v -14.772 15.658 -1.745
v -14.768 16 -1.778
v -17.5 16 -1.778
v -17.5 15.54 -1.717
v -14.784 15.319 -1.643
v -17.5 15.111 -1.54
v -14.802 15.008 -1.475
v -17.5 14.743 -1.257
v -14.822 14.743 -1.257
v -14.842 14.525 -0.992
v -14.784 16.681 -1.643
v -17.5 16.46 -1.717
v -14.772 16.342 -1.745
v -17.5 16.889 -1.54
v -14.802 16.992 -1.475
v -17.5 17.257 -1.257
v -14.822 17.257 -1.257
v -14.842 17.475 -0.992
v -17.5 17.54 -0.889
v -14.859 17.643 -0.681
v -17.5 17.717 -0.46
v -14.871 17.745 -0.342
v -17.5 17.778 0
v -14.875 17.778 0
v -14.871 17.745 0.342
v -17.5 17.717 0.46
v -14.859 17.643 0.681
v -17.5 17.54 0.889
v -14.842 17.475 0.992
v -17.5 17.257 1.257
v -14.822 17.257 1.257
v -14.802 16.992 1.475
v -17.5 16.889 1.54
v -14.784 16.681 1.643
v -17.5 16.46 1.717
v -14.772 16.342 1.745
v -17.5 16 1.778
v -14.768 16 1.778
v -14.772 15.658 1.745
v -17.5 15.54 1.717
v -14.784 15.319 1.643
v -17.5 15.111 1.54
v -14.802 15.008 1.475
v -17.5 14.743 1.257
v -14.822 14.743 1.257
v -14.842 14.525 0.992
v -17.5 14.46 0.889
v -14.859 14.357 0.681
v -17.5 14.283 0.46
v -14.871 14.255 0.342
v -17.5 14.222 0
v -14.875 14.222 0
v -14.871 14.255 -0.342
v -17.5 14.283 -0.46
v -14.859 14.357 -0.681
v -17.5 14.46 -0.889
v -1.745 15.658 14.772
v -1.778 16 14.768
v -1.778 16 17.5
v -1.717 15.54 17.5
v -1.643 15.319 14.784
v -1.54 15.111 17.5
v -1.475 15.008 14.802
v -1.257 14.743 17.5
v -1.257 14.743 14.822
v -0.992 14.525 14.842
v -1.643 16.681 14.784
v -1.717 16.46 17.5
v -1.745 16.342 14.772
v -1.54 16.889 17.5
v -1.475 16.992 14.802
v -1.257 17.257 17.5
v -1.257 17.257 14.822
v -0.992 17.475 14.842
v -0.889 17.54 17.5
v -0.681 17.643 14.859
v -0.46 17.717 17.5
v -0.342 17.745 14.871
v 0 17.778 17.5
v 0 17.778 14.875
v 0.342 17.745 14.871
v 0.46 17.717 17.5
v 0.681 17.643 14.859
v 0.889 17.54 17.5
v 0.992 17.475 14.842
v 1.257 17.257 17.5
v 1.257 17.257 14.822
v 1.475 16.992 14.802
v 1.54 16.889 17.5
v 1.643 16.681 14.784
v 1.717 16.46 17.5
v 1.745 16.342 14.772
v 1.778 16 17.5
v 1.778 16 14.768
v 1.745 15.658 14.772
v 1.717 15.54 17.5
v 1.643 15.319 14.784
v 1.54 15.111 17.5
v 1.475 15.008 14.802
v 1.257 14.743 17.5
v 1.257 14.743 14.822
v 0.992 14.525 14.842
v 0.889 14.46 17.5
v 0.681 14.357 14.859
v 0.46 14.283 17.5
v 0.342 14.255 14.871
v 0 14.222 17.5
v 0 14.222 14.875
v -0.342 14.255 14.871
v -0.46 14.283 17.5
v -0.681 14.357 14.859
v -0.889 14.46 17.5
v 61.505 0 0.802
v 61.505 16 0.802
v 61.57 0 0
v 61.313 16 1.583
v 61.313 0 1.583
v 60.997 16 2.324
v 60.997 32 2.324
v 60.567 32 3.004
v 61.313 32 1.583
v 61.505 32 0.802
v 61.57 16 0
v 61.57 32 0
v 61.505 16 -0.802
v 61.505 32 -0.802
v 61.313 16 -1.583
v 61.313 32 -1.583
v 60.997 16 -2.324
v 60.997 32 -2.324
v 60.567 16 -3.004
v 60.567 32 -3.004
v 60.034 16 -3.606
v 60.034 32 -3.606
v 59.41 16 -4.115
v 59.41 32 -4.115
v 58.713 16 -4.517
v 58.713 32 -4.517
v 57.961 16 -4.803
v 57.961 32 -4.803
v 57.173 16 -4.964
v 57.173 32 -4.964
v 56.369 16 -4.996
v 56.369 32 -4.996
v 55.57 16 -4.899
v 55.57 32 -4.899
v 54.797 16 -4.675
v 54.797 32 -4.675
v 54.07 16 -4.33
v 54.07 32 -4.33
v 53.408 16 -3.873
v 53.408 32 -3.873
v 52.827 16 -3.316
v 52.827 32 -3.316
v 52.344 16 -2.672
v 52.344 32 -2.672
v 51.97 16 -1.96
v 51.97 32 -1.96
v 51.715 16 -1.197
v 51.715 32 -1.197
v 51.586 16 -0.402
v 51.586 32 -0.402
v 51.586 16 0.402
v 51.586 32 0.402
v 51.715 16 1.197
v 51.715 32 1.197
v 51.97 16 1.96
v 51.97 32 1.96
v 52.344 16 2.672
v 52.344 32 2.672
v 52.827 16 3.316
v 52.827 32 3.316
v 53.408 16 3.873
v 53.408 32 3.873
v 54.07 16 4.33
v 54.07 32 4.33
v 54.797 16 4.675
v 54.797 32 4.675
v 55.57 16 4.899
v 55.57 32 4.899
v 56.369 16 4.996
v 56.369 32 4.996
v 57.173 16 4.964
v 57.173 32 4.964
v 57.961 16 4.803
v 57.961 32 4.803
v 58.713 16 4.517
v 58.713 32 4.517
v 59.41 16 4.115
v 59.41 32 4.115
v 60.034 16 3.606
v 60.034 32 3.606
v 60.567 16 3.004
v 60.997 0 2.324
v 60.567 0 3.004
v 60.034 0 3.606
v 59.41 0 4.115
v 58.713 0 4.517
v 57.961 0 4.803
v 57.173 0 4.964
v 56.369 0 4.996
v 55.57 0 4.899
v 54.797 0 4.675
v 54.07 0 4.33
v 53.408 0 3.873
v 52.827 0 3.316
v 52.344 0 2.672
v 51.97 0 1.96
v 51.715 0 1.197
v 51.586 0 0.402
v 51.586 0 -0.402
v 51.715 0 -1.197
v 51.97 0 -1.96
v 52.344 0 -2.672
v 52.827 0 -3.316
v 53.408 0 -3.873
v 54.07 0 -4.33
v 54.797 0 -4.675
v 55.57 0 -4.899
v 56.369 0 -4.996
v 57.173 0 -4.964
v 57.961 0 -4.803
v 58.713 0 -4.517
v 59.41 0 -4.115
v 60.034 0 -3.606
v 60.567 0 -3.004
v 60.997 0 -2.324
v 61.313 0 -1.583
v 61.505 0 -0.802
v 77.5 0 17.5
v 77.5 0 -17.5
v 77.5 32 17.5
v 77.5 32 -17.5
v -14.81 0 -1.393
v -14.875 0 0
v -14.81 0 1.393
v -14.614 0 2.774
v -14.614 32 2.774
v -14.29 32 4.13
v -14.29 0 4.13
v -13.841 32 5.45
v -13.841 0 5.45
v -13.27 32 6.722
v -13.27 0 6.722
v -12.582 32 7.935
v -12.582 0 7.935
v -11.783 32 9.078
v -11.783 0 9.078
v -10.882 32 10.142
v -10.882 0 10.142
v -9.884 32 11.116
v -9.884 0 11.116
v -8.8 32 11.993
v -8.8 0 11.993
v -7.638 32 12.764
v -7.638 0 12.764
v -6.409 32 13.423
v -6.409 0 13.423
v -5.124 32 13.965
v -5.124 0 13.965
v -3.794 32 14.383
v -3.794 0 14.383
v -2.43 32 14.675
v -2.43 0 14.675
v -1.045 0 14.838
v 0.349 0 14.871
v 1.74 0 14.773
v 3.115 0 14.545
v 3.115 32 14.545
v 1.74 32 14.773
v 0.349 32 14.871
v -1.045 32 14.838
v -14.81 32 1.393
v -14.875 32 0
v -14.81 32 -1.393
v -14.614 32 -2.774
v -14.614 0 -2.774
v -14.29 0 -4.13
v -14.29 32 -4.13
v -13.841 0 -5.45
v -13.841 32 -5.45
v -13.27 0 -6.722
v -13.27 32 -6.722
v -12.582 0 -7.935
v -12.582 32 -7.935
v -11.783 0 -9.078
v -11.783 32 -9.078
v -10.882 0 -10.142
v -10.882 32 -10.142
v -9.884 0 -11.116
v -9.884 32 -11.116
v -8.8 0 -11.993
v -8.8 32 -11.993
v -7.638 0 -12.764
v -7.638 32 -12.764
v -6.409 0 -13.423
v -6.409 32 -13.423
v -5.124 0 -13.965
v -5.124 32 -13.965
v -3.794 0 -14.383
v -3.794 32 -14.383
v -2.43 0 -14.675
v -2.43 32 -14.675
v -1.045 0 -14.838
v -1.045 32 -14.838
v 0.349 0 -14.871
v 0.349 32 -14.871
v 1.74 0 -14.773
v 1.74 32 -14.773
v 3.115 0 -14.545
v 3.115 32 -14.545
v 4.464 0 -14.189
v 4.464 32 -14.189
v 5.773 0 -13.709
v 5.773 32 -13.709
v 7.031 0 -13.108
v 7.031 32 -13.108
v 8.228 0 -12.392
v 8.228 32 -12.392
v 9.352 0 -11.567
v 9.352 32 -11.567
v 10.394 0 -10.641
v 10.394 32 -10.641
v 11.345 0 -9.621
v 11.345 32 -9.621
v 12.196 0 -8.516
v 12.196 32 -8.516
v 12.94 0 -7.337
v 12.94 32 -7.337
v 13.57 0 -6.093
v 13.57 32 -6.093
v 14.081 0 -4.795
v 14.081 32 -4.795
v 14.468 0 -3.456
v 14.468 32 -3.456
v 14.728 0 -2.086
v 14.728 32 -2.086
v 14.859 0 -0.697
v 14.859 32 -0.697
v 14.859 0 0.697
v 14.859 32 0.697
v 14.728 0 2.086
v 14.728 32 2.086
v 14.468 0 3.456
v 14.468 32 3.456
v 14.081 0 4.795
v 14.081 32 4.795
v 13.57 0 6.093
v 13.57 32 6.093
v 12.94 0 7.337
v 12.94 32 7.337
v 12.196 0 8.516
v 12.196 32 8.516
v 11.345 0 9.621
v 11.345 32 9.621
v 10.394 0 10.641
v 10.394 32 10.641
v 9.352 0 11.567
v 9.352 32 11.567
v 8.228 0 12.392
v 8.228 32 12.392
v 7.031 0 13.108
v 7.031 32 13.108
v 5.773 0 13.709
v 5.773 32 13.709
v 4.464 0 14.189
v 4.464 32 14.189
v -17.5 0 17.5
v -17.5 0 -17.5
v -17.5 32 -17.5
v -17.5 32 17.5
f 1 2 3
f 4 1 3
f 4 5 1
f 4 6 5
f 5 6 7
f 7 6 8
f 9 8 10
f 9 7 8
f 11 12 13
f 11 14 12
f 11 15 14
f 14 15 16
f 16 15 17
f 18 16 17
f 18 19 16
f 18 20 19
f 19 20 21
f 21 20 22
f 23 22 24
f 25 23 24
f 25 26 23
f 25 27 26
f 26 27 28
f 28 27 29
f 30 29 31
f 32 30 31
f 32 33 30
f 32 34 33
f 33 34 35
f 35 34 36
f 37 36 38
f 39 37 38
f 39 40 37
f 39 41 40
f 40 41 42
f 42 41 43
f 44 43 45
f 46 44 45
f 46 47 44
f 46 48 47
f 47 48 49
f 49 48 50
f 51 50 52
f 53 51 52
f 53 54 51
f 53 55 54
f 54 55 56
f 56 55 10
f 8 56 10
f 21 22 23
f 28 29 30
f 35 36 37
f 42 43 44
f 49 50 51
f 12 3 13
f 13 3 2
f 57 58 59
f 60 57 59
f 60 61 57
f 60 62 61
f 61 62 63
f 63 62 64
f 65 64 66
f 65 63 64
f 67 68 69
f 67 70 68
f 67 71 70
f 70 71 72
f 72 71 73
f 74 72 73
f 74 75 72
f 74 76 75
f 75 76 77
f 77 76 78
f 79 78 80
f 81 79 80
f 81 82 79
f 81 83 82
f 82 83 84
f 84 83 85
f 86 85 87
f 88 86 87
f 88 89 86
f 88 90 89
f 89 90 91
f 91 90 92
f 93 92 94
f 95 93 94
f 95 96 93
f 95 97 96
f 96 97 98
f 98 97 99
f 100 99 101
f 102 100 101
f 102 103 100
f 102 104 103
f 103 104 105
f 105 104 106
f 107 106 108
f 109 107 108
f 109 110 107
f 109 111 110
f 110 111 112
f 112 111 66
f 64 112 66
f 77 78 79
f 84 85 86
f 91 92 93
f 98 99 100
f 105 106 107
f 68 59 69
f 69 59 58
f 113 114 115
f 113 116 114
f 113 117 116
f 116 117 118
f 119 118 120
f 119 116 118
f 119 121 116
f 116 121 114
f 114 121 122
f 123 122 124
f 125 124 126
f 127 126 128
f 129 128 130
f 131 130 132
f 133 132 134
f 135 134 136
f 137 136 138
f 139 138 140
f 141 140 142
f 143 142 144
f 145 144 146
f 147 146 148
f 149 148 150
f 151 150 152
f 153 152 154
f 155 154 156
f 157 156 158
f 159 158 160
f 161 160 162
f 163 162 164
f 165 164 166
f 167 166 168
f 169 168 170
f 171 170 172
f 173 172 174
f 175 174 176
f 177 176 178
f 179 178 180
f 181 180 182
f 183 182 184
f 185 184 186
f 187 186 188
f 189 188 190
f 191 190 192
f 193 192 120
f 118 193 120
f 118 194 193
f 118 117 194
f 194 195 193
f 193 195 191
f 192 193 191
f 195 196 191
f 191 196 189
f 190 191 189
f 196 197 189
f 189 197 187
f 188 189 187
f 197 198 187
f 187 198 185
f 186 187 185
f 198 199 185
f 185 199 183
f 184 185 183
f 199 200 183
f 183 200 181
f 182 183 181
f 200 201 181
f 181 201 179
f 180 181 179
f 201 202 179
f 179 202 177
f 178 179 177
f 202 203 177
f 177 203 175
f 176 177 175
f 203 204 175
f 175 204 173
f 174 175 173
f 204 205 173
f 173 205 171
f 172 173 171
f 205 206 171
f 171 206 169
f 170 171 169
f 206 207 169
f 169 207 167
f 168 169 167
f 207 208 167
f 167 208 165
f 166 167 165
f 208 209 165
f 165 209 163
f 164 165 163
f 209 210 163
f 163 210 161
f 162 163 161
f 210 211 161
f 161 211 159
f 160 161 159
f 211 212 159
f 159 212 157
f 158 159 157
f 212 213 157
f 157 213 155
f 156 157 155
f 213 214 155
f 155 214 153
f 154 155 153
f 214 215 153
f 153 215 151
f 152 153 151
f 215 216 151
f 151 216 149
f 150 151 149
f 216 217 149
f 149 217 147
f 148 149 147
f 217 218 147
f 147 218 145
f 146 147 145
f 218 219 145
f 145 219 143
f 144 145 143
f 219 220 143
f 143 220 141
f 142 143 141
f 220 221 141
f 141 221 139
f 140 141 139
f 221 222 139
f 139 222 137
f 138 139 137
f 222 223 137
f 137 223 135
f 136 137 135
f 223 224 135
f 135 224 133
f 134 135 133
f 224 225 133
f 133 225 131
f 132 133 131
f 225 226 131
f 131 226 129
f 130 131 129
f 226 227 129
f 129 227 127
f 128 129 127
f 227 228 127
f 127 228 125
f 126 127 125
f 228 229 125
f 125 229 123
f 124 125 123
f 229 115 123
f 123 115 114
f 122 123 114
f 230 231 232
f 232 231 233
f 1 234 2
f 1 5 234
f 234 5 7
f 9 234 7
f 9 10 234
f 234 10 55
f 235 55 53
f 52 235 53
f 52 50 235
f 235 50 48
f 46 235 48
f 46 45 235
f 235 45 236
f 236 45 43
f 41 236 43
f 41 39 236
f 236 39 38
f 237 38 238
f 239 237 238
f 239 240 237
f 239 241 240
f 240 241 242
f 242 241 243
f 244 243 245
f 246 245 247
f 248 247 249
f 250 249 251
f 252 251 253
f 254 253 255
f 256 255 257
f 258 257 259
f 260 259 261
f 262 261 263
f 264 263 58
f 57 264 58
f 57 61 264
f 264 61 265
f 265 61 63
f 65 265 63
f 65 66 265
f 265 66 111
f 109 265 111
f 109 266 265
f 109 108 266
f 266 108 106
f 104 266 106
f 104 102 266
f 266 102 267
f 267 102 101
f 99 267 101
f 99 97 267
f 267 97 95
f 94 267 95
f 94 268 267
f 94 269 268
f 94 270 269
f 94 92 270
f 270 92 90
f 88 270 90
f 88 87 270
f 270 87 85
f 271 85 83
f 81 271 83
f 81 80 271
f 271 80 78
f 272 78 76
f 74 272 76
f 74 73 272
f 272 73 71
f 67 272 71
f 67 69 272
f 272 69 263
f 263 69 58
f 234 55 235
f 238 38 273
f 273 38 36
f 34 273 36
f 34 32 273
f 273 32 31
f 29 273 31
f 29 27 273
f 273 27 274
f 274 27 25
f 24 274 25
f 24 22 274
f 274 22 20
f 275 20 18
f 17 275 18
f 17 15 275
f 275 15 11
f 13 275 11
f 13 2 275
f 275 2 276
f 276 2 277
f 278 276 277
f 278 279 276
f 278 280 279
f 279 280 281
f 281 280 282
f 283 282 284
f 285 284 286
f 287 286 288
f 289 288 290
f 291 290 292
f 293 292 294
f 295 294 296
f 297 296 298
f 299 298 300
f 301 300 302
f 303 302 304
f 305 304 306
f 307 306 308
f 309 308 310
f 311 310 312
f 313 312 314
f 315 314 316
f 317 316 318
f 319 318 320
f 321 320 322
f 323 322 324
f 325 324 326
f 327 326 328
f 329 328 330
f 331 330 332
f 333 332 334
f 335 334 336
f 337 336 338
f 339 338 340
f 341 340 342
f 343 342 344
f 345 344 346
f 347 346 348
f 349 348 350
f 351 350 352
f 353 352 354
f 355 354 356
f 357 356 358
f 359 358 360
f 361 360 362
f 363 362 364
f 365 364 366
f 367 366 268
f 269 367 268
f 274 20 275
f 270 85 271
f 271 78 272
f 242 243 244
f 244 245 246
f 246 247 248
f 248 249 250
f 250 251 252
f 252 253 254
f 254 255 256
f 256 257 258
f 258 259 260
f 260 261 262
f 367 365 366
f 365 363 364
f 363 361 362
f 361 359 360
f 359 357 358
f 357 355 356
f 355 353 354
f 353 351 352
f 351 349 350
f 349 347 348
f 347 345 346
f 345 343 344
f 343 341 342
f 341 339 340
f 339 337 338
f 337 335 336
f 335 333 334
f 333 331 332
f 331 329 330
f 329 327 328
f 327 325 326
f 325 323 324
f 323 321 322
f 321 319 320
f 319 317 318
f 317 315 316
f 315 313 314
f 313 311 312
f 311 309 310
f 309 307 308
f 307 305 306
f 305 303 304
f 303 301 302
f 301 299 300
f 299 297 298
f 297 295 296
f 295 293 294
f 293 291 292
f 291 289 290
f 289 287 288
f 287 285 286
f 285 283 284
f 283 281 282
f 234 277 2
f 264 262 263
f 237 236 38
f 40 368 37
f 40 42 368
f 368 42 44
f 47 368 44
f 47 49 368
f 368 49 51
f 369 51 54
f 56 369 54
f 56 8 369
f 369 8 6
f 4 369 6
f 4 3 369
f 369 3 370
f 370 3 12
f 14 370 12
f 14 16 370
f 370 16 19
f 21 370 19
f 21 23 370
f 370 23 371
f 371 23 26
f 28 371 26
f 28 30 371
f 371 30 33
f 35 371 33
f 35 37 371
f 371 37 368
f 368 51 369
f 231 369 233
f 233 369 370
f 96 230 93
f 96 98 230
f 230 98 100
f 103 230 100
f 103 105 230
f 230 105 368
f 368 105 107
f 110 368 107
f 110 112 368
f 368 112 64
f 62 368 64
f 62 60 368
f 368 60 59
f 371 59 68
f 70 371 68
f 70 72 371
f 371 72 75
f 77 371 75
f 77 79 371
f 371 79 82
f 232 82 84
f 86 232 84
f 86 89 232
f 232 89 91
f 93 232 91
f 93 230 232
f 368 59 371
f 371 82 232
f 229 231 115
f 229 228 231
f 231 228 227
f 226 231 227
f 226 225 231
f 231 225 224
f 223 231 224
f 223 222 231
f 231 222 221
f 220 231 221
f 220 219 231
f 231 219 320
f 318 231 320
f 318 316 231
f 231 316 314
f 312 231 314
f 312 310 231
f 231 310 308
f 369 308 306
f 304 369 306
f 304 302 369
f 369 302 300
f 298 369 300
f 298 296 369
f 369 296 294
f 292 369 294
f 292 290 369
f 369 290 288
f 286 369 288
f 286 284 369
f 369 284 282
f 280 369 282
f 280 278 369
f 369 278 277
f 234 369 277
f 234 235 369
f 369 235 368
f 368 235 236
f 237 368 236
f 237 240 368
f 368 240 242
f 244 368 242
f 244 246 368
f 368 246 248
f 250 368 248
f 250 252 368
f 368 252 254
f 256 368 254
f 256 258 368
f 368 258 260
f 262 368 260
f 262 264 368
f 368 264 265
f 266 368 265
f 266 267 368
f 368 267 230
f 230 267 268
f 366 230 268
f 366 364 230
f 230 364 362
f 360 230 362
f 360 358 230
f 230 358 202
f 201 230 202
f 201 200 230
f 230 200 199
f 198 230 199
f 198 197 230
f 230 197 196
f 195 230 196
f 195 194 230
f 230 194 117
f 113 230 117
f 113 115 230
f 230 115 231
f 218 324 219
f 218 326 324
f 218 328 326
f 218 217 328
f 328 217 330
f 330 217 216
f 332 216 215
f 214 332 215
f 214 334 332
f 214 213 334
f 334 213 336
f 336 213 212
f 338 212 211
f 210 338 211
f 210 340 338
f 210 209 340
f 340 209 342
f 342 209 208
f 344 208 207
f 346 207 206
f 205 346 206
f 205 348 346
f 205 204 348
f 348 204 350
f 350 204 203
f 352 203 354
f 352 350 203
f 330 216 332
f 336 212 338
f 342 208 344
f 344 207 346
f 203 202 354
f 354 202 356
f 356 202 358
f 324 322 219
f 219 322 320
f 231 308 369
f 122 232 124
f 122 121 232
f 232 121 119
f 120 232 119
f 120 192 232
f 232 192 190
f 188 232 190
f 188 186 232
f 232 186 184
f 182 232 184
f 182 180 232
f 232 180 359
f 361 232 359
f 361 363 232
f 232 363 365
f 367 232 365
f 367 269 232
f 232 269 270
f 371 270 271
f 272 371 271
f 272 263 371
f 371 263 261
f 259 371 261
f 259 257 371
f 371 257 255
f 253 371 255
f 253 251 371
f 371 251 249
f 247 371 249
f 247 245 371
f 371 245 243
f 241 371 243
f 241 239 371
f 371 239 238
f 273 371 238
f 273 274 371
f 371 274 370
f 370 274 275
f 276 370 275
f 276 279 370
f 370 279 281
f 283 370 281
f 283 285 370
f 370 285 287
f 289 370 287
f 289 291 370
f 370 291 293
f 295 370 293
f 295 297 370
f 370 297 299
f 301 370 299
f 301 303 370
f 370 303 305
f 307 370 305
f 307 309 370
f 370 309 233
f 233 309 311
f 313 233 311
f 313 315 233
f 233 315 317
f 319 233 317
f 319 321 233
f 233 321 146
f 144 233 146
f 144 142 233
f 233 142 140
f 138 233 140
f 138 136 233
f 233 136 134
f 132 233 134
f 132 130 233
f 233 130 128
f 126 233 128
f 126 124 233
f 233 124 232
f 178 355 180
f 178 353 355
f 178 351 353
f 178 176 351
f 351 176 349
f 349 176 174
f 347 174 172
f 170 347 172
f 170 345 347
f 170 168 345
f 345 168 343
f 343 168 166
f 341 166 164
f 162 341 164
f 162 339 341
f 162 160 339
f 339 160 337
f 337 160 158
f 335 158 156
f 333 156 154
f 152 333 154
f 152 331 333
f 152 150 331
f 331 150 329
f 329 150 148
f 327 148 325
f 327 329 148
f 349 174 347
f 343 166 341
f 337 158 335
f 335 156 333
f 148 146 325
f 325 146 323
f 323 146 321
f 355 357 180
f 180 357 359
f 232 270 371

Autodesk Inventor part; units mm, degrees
ref_plane "YZ Plane" through (0, 0, 0) normal (1, 0, 0) x (0, 1, 0)
ref_plane "XZ Plane" through (0, 0, 0) normal (0, 1, 0) x (-1, 0, 0)
ref_plane "XY Plane" through (0, 0, 0) normal (0, 0, 1) x (1, 0, 0)
sketch "Sketch1" plane through (0, 0, 0) normal (0, 1, 0) x (-1, 0, 0)
  circle A0 centre (0, 0) radius 14.875
  line L0 (-17.5, 17.5) -> (17.5, 17.5)
  line L1 (17.5, 17.5) -> (17.5, -17.5)
  line L2 (17.5, -17.5) -> (-17.5, -17.5)
  line L3 (-17.5, -17.5) -> (-17.5, 17.5)
  line L4 (-17.5, 17.5) -> (17.5, -17.5) construction
  line L5 (17.5, 17.5) -> (-17.5, -17.5) construction
  dimension "d0" = 29.75
  dimension "d1" = 35
  dimension "d2" = 35
extrude "Extrusion1" add sketch "Sketch1" along normal blind 32
sketch "Sketch2" plane through (17.5, 0, 17.5) normal (1, 0, 0) x (0, 0, -1)
  line L0 (0, 0) -> (35, 0)
  line L1 (35, 0) -> (35, 32)
  line L2 (35, 32) -> (0, 32)
  line L3 (0, 32) -> (0, 0)
  point P0 (17.5, 0)
sketch "Sketch3" plane through (0, 32, 0) normal (0, 1, 0) x (1, 0, 0)
  line L0 (17.5, -17.5) -> (17.5, 17.5) projected
  line L1 (17.5, 0) -> (56.57, 0)
  circle A0 centre (56.57, 0) radius 5
  point P0 (0, 0)
  dimension "d5" = 56.57
  dimension "d9" = 10
extrude "Extrusion2" add sketch "Sketch2" along normal blind 60
extrude "Extrusion3" cut sketch "Sketch3" against normal through all
sketch "Sketch5" plane through (-17.5, 0, 17.5) normal (0, 0, 1) x (1, 0, 0)
  circle A0 centre (17.5, 16) radius 1.778
  point P0 (17.5, 0)
  dimension "d15" = 3.556
extrude "Extrusion5" cut sketch "Sketch5" against normal blind 10
sketch "Sketch6" plane through (-17.5, 0, -17.5) normal (-1, 0, 0) x (0, 0, 1)
  circle A0 centre (17.5, 16) radius 1.778
  point P0 (17.5, 0)
  dimension "d18" = 3.556
extrude "Extrusion6" cut sketch "Sketch6" against normal blind 3.556
equation "\"d19\" = d18"
properties part number "MotorBarConnect"
